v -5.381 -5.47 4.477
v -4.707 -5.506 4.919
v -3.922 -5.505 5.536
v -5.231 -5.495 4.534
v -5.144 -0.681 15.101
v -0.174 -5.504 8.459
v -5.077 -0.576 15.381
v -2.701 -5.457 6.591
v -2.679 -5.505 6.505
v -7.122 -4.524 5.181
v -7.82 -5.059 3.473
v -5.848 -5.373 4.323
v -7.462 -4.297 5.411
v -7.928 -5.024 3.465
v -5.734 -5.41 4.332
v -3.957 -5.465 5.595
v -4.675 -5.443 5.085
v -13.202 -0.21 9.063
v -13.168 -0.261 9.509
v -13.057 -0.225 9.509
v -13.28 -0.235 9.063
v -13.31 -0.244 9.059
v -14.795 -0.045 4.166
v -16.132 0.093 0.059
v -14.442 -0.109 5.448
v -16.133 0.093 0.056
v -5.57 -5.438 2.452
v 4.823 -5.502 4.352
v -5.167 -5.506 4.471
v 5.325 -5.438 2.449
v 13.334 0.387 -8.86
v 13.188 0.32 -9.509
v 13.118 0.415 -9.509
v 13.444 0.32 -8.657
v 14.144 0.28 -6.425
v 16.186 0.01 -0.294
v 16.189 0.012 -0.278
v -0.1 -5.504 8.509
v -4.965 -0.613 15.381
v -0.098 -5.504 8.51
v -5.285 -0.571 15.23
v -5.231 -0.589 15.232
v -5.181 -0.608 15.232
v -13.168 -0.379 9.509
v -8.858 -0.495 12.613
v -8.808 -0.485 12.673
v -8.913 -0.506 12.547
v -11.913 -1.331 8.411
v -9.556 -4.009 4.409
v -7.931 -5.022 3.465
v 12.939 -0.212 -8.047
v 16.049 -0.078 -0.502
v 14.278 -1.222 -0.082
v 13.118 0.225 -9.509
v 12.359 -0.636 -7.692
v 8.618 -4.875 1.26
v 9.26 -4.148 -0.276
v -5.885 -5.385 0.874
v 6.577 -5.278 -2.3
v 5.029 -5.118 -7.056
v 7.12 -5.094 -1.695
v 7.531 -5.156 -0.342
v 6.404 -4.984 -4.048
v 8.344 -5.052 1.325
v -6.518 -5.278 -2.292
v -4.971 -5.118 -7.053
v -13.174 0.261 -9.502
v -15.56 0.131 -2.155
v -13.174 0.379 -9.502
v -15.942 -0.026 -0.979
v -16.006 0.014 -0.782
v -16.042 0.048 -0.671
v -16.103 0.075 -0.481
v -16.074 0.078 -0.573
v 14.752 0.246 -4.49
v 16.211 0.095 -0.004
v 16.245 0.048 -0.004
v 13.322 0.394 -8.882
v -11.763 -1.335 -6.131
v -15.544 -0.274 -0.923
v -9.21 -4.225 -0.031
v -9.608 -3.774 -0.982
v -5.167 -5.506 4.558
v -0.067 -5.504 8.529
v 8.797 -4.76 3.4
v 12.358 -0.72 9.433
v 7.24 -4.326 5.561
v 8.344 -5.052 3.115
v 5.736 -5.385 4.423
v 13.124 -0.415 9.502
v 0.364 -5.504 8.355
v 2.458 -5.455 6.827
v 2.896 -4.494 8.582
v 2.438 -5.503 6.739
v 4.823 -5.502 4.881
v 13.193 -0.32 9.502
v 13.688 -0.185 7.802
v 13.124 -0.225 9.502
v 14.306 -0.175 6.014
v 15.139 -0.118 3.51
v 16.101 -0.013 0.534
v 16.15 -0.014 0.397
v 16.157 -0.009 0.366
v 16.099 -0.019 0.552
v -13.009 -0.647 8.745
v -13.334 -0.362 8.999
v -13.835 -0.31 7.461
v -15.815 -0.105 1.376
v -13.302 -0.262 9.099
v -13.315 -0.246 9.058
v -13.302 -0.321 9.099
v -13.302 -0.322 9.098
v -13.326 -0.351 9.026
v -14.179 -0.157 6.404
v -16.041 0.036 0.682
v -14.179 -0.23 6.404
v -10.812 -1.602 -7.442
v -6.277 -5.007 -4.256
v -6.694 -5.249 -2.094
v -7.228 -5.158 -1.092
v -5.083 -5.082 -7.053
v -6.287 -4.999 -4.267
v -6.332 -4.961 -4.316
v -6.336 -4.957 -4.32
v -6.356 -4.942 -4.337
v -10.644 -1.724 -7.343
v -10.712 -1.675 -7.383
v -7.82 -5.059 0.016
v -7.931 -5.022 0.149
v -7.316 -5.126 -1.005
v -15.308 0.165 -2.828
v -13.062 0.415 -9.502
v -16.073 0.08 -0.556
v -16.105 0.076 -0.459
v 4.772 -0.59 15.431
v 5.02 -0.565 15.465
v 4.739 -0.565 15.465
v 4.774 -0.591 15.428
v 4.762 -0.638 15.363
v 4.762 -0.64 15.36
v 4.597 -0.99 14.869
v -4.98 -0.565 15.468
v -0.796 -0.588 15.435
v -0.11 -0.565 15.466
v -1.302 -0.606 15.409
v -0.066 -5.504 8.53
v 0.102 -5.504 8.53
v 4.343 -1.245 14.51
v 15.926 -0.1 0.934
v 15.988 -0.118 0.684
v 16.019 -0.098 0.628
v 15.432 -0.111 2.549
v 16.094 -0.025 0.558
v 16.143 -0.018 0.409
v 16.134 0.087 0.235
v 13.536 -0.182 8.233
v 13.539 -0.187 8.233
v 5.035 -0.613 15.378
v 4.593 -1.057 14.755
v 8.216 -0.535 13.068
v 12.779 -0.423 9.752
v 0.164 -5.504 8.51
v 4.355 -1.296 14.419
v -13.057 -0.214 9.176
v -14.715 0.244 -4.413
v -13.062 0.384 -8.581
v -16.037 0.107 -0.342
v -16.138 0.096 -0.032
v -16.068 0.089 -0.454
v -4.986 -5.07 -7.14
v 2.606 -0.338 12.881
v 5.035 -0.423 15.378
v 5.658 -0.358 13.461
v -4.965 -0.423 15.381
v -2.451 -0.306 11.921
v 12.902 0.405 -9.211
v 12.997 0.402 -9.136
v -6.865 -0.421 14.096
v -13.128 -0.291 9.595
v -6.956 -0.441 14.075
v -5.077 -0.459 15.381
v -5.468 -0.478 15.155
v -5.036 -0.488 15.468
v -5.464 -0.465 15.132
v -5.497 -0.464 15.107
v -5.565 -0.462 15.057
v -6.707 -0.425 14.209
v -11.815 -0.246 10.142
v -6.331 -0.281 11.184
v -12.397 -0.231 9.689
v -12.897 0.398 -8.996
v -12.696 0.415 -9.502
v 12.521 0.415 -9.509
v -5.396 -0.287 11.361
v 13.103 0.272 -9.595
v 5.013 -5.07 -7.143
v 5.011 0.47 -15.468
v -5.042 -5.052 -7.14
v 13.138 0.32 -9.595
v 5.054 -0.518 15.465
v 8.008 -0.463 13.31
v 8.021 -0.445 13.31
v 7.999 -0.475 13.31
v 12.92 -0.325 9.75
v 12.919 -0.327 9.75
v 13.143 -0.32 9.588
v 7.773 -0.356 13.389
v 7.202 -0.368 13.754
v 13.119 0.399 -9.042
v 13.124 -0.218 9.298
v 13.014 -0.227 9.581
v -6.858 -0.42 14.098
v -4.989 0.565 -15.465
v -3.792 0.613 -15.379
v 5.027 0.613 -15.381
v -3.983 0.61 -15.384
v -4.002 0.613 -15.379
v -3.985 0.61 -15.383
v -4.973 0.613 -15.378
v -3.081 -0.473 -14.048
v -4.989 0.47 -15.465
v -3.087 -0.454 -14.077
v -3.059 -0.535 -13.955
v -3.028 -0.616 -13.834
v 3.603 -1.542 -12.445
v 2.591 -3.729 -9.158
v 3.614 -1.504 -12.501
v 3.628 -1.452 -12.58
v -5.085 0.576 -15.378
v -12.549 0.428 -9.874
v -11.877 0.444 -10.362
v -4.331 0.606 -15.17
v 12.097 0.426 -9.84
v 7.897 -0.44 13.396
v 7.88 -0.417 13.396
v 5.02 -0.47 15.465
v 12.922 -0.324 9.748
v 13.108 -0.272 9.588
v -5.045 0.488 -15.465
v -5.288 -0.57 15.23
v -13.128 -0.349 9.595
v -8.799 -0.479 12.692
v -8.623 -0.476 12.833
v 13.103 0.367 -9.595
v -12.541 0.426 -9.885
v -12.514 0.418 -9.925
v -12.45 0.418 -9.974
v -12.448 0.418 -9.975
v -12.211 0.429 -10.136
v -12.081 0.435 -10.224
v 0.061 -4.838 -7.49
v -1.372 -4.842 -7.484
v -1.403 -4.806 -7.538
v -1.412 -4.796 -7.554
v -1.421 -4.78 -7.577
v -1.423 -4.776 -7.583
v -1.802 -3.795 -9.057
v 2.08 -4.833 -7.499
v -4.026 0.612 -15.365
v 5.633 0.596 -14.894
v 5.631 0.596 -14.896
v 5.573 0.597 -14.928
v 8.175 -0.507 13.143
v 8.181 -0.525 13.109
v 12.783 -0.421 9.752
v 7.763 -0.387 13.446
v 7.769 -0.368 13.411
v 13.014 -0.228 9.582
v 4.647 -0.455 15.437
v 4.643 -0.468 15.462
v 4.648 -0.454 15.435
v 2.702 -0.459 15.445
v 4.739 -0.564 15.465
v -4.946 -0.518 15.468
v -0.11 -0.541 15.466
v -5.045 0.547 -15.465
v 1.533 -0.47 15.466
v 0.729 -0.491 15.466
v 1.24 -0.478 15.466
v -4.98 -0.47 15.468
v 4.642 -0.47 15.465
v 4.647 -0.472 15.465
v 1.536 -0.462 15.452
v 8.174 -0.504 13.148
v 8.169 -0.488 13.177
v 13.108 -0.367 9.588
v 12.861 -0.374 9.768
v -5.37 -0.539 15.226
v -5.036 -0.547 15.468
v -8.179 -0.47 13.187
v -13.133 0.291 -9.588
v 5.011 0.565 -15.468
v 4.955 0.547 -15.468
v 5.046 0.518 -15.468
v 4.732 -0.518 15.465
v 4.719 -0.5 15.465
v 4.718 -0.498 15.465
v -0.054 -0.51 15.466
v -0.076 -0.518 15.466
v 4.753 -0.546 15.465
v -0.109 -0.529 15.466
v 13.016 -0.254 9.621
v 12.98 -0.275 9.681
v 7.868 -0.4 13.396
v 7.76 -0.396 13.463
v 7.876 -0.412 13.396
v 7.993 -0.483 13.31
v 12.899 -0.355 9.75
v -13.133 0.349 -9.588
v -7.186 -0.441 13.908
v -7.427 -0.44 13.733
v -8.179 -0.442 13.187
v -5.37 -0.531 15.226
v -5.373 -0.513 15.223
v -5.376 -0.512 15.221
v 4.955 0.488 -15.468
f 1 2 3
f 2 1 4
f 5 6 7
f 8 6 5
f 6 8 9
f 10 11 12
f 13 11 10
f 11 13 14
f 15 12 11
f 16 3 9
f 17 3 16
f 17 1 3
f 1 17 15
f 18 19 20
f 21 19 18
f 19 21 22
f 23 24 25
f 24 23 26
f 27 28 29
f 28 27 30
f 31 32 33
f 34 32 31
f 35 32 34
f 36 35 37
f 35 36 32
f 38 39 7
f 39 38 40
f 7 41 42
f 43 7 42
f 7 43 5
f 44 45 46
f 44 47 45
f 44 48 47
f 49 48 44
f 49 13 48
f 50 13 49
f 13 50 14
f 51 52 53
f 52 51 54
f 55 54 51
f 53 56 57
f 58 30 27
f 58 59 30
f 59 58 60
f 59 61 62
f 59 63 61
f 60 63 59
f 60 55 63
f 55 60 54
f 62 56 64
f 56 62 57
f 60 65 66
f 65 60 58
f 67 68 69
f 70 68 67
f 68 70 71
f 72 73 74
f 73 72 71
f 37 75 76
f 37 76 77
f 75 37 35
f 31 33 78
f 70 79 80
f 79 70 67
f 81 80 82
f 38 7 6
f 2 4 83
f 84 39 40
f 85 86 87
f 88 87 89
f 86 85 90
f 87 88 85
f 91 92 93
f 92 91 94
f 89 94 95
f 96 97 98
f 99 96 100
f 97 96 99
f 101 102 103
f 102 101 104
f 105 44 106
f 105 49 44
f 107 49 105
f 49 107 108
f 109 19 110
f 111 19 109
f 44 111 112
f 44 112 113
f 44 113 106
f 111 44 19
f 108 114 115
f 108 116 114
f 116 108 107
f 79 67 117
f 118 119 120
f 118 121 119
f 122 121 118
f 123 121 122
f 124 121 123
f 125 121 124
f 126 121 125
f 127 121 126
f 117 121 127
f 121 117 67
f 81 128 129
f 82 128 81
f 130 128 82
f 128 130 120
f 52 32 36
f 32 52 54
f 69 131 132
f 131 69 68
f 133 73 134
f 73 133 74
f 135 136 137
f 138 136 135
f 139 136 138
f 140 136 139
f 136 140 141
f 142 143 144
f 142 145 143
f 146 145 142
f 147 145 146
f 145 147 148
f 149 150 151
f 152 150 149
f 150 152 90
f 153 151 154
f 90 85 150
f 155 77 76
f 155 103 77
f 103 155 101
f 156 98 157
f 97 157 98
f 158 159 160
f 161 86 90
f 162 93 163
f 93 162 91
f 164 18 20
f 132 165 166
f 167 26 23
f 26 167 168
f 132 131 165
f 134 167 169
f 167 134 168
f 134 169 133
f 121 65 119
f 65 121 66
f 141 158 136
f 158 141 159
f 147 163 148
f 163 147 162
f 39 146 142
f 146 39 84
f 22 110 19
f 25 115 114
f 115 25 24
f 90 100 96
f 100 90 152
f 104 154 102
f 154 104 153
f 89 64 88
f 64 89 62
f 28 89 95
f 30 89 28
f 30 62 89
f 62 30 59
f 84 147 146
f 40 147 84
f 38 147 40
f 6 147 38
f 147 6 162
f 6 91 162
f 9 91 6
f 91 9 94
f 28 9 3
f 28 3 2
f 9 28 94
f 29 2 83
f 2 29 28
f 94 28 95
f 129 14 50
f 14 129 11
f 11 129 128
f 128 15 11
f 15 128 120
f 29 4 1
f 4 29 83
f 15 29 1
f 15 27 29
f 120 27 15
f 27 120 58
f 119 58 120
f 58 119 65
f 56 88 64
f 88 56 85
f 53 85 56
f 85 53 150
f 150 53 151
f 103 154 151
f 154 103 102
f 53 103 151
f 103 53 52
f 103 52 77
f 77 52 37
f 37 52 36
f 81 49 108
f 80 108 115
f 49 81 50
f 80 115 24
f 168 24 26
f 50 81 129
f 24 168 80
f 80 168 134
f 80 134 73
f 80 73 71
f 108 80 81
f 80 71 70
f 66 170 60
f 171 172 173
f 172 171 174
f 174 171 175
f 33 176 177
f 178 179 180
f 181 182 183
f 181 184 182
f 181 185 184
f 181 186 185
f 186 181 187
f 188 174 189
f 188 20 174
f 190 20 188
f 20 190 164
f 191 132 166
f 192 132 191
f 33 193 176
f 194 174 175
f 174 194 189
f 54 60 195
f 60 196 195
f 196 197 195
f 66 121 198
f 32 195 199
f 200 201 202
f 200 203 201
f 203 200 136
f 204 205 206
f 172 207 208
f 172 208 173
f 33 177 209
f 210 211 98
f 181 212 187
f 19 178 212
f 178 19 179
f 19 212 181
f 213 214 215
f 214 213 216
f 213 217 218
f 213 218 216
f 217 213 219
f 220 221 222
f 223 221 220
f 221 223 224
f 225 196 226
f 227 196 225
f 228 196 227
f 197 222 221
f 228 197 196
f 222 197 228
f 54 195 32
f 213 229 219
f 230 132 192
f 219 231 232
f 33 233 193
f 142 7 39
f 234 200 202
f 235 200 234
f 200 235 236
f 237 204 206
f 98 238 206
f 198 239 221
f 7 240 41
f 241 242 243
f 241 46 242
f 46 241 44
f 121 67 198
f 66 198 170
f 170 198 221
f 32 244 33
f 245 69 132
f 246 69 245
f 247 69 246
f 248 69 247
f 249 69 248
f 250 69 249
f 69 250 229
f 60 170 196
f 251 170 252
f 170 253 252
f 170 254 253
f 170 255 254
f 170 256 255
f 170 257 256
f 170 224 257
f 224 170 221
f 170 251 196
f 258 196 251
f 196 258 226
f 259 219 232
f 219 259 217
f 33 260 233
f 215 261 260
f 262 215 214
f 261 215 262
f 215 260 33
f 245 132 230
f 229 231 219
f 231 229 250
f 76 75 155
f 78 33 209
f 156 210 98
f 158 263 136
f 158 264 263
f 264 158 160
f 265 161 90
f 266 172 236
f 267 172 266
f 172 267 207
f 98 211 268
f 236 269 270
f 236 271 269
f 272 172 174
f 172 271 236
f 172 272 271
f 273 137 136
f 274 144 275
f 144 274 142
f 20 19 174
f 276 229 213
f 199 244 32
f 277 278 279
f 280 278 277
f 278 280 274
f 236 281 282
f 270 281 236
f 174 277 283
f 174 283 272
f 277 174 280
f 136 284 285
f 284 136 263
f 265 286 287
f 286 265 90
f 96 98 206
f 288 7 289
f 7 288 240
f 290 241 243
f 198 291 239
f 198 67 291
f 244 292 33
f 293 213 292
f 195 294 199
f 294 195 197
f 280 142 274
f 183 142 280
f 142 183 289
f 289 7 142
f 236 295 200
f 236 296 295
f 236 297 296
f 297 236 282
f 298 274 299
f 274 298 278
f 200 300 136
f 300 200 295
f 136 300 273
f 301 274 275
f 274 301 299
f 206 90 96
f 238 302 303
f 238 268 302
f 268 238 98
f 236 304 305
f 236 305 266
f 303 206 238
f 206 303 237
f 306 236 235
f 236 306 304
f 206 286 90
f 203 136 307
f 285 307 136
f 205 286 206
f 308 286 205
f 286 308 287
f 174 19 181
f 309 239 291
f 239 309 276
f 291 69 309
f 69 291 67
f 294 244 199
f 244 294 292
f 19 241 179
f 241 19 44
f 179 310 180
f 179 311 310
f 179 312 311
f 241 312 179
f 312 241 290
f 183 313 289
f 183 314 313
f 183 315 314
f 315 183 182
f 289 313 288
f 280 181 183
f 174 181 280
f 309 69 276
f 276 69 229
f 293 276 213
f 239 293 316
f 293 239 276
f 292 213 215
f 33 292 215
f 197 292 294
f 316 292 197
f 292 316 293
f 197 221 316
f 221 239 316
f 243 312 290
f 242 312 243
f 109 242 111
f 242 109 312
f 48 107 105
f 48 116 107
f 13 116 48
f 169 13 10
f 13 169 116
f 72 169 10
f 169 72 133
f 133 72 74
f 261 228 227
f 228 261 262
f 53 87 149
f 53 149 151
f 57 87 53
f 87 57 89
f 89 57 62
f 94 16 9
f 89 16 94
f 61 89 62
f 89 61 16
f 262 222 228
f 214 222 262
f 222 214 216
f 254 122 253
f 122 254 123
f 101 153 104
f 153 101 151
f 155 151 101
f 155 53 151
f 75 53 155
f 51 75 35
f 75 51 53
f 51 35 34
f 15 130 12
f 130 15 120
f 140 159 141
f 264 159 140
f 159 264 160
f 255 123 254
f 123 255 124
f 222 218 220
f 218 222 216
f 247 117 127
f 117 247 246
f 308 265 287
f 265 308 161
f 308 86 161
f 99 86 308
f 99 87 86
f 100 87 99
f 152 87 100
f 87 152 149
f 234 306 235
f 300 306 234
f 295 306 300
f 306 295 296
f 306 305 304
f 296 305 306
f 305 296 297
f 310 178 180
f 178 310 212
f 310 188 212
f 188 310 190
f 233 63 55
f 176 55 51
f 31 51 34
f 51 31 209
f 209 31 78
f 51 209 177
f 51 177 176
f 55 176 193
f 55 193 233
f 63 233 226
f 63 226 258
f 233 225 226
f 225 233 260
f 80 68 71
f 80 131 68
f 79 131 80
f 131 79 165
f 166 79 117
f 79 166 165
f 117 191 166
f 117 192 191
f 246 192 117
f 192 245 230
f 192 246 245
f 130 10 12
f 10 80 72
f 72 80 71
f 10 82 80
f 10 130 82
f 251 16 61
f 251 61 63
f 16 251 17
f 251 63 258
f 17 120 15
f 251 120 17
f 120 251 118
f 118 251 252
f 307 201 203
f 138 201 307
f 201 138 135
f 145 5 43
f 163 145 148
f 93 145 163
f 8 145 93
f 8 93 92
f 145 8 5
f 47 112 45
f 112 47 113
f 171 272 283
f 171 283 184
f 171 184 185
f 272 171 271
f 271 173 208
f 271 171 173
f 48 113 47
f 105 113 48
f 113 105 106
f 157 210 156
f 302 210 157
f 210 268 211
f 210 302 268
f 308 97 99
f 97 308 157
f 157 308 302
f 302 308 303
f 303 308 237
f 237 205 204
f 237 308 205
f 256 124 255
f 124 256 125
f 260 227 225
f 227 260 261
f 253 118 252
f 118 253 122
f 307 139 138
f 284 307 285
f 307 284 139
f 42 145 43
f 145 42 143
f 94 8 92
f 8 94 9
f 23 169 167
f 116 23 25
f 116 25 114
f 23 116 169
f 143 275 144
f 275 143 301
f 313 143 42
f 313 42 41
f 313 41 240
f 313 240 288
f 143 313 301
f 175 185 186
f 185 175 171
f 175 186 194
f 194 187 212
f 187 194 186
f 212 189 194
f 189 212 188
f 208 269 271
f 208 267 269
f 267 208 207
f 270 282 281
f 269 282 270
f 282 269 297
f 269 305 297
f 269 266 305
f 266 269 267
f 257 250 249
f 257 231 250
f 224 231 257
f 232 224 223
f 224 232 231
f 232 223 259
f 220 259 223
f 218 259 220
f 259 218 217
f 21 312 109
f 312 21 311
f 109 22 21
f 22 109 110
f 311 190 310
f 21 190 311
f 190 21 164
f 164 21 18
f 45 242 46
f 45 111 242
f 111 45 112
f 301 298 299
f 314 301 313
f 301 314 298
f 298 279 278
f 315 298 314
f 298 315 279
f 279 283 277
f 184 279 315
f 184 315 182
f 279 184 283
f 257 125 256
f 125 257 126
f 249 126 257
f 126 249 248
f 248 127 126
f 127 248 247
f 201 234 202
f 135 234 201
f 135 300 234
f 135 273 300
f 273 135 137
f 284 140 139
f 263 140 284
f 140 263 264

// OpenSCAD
// Auto-generated OpenSCAD file

    inner_points = 10*[[-1.6065576544292892, 0.016072137049278255, -0.07392451573739472], [1.6261308566625277, 0.017340658440594285, 0.07392451573739472], [-1.341249269607953, -0.02863275383436257, 0.8892021289332714], [-1.2544774711527342, 0.061019293960932294, -1.0088145079982527], [1.2740506733859727, -0.027606498471059754, 1.0088145079982527], [1.3608224718411914, 0.06204554932423511, -0.8892021289332714], [-0.5598911021901387, -0.0560196298357948, 1.512683783220194], [-0.4194913830246398, 0.08904043065802253, -1.5583716465477804], [0.43906458525787834, -0.055627635168149996, 1.5583716465477804], [0.5794643044233774, 0.08943242532566734, -1.512683783220194], [-0.7850562096059552, -0.49636791351195547, -0.3240056440417419], [0.8312880459399532, -0.4957336528162974, -0.25008112830434714], [-0.5197478247846188, -0.5410728043955961, 0.6391210006289243], [0.4792078626633983, -0.5406808097279513, 0.6848088639565106], [0.04992987852213929, -0.4683467768148652, -0.87356278259127]];

    outer_points = 10*[[1.6180339268989221, 0.0, -0.00044738568277260886], [-1.6180339268989221, 0.0, 0.00044738568277260886], [1.3087541264448814, 0.031991353396446154, -0.950880212524824], [1.309279762228037, -0.031991353396446154, 0.9501563272840178], [-1.309279762228037, 0.031991353396446154, -0.9501563272840178], [-1.3087541264448814, -0.031991353396446154, 0.950880212524824], [0.49957473260557367, 0.051763097141559244, -1.5381091174121158], [0.5004252291684228, -0.051763097141559244, 1.5378326178540822], [-0.5004252291684228, 0.051763097141559244, -1.5378326178540822], [-0.49957473260557367, -0.051763097141559244, 1.5381091174121158], [0.8090847148034257, -0.5342757895268477, 0.24480871103153803], [-0.8089492120954964, -0.5342757895268477, 0.24525609671431062], [0.499804914349385, -0.5022844361304015, -0.7056241158105132], [-0.5001950474246115, -0.5022844361304015, -0.7053476162524797], [0.0002301817438113309, -0.5540475332719608, 0.8324850016016027]];

    // Convex hull for inner set (I)
    module inner_hull() {
        hull() {
            for (p = inner_points) {
                translate(p) sphere(r=0.1);
            }
        }
    }

    // Convex hull for outer set (O) minus inner hull (O \ I)
    module outer_minus_inner() {
        difference() {
            hull() {
                for (p = outer_points) {
                    translate(p) sphere(r=0.1);
                }
            }
            inner_hull(); // Subtract inner hull
        }
    }

    // Convex hull for outer set (O) minus all translated inner hulls
    module outer_minus_AllTranslationInner() {
        difference() {
            hull() {
                for (p = outer_points) {
                    translate(p) sphere(r=0.1);
                }
            }
            hull() {
                translate([0,0,50]) inner_hull();
                translate([0,0,-50]) inner_hull();
            }; // Subtract translated inner hulls
        }
    }

    // Difference between outer_minus_inner and outer_minus_AllTranslationInner
    module outer_minus_inner_diff() {
        difference() {
            // Outer minus inner
            difference() {
                hull() {
                    for (p = outer_points) {
                        translate(p) sphere(r=0.1);
                    }
                }
                inner_hull();
            }

            // Subtract Outer minus AllTranslationInner
            difference() {
                hull() {
                    for (p = outer_points) {
                        translate(p) sphere(r=0.1);
                    }
                }
                hull() {
                    translate([0,0,50]) inner_hull();
                    translate([0,0,-50]) inner_hull();
                };
            }
        }
    }

    // Rendering all with colors applied
    color([1, 1, 0, 1]) outer_minus_inner_diff(); // Opaque yellow
    
